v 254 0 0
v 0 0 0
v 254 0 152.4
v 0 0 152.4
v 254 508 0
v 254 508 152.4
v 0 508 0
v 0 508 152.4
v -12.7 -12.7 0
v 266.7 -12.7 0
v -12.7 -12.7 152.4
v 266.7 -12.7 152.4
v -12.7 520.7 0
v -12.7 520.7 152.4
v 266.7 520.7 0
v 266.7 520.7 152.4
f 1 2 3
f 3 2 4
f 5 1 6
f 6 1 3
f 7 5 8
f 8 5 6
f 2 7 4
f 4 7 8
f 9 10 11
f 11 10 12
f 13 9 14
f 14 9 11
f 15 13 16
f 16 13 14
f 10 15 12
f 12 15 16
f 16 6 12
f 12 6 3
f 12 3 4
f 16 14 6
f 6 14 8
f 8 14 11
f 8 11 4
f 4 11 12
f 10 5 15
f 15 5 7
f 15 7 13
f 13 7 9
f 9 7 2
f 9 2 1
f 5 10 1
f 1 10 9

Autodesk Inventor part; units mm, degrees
ref_plane "YZ Plane" through (0, 0, 0) normal (1, 0, 0) x (0, 1, 0)
ref_plane "XZ Plane" through (0, 0, 0) normal (0, 1, 0) x (-1, 0, 0)
ref_plane "XY Plane" through (0, 0, 0) normal (0, 0, 1) x (1, 0, 0)
sketch "Sketch1" plane through (0, 0, 0) normal (0, 0, 1) x (1, 0, 0)
  line L0 (0, 0) -> (254, 0)
  line L1 (254, 0) -> (254, 508)
  line L2 (254, 508) -> (0, 508)
  line L3 (0, 508) -> (0, 0)
  line L4 (-12.7, -12.7) -> (266.7, -12.7)
  line L5 (266.7, -12.7) -> (266.7, 520.7)
  line L6 (266.7, 520.7) -> (-12.7, 520.7)
  line L7 (-12.7, 520.7) -> (-12.7, -12.7)
  line L8 (-12.7, -12.7) -> (266.7, 520.7) construction
  line L9 (266.7, -12.7) -> (-12.7, 520.7) construction
  point P0 (127, 254)
  dimension "d0" = 254
  dimension "d1" = 508
  dimension "d2" = 279.4
  dimension "d3" = 533.4
  dimension "d4" = 12.7
extrude "Extrusion1" add sketch "Sketch1" along normal blind 152.4
properties part number "empty_room"
